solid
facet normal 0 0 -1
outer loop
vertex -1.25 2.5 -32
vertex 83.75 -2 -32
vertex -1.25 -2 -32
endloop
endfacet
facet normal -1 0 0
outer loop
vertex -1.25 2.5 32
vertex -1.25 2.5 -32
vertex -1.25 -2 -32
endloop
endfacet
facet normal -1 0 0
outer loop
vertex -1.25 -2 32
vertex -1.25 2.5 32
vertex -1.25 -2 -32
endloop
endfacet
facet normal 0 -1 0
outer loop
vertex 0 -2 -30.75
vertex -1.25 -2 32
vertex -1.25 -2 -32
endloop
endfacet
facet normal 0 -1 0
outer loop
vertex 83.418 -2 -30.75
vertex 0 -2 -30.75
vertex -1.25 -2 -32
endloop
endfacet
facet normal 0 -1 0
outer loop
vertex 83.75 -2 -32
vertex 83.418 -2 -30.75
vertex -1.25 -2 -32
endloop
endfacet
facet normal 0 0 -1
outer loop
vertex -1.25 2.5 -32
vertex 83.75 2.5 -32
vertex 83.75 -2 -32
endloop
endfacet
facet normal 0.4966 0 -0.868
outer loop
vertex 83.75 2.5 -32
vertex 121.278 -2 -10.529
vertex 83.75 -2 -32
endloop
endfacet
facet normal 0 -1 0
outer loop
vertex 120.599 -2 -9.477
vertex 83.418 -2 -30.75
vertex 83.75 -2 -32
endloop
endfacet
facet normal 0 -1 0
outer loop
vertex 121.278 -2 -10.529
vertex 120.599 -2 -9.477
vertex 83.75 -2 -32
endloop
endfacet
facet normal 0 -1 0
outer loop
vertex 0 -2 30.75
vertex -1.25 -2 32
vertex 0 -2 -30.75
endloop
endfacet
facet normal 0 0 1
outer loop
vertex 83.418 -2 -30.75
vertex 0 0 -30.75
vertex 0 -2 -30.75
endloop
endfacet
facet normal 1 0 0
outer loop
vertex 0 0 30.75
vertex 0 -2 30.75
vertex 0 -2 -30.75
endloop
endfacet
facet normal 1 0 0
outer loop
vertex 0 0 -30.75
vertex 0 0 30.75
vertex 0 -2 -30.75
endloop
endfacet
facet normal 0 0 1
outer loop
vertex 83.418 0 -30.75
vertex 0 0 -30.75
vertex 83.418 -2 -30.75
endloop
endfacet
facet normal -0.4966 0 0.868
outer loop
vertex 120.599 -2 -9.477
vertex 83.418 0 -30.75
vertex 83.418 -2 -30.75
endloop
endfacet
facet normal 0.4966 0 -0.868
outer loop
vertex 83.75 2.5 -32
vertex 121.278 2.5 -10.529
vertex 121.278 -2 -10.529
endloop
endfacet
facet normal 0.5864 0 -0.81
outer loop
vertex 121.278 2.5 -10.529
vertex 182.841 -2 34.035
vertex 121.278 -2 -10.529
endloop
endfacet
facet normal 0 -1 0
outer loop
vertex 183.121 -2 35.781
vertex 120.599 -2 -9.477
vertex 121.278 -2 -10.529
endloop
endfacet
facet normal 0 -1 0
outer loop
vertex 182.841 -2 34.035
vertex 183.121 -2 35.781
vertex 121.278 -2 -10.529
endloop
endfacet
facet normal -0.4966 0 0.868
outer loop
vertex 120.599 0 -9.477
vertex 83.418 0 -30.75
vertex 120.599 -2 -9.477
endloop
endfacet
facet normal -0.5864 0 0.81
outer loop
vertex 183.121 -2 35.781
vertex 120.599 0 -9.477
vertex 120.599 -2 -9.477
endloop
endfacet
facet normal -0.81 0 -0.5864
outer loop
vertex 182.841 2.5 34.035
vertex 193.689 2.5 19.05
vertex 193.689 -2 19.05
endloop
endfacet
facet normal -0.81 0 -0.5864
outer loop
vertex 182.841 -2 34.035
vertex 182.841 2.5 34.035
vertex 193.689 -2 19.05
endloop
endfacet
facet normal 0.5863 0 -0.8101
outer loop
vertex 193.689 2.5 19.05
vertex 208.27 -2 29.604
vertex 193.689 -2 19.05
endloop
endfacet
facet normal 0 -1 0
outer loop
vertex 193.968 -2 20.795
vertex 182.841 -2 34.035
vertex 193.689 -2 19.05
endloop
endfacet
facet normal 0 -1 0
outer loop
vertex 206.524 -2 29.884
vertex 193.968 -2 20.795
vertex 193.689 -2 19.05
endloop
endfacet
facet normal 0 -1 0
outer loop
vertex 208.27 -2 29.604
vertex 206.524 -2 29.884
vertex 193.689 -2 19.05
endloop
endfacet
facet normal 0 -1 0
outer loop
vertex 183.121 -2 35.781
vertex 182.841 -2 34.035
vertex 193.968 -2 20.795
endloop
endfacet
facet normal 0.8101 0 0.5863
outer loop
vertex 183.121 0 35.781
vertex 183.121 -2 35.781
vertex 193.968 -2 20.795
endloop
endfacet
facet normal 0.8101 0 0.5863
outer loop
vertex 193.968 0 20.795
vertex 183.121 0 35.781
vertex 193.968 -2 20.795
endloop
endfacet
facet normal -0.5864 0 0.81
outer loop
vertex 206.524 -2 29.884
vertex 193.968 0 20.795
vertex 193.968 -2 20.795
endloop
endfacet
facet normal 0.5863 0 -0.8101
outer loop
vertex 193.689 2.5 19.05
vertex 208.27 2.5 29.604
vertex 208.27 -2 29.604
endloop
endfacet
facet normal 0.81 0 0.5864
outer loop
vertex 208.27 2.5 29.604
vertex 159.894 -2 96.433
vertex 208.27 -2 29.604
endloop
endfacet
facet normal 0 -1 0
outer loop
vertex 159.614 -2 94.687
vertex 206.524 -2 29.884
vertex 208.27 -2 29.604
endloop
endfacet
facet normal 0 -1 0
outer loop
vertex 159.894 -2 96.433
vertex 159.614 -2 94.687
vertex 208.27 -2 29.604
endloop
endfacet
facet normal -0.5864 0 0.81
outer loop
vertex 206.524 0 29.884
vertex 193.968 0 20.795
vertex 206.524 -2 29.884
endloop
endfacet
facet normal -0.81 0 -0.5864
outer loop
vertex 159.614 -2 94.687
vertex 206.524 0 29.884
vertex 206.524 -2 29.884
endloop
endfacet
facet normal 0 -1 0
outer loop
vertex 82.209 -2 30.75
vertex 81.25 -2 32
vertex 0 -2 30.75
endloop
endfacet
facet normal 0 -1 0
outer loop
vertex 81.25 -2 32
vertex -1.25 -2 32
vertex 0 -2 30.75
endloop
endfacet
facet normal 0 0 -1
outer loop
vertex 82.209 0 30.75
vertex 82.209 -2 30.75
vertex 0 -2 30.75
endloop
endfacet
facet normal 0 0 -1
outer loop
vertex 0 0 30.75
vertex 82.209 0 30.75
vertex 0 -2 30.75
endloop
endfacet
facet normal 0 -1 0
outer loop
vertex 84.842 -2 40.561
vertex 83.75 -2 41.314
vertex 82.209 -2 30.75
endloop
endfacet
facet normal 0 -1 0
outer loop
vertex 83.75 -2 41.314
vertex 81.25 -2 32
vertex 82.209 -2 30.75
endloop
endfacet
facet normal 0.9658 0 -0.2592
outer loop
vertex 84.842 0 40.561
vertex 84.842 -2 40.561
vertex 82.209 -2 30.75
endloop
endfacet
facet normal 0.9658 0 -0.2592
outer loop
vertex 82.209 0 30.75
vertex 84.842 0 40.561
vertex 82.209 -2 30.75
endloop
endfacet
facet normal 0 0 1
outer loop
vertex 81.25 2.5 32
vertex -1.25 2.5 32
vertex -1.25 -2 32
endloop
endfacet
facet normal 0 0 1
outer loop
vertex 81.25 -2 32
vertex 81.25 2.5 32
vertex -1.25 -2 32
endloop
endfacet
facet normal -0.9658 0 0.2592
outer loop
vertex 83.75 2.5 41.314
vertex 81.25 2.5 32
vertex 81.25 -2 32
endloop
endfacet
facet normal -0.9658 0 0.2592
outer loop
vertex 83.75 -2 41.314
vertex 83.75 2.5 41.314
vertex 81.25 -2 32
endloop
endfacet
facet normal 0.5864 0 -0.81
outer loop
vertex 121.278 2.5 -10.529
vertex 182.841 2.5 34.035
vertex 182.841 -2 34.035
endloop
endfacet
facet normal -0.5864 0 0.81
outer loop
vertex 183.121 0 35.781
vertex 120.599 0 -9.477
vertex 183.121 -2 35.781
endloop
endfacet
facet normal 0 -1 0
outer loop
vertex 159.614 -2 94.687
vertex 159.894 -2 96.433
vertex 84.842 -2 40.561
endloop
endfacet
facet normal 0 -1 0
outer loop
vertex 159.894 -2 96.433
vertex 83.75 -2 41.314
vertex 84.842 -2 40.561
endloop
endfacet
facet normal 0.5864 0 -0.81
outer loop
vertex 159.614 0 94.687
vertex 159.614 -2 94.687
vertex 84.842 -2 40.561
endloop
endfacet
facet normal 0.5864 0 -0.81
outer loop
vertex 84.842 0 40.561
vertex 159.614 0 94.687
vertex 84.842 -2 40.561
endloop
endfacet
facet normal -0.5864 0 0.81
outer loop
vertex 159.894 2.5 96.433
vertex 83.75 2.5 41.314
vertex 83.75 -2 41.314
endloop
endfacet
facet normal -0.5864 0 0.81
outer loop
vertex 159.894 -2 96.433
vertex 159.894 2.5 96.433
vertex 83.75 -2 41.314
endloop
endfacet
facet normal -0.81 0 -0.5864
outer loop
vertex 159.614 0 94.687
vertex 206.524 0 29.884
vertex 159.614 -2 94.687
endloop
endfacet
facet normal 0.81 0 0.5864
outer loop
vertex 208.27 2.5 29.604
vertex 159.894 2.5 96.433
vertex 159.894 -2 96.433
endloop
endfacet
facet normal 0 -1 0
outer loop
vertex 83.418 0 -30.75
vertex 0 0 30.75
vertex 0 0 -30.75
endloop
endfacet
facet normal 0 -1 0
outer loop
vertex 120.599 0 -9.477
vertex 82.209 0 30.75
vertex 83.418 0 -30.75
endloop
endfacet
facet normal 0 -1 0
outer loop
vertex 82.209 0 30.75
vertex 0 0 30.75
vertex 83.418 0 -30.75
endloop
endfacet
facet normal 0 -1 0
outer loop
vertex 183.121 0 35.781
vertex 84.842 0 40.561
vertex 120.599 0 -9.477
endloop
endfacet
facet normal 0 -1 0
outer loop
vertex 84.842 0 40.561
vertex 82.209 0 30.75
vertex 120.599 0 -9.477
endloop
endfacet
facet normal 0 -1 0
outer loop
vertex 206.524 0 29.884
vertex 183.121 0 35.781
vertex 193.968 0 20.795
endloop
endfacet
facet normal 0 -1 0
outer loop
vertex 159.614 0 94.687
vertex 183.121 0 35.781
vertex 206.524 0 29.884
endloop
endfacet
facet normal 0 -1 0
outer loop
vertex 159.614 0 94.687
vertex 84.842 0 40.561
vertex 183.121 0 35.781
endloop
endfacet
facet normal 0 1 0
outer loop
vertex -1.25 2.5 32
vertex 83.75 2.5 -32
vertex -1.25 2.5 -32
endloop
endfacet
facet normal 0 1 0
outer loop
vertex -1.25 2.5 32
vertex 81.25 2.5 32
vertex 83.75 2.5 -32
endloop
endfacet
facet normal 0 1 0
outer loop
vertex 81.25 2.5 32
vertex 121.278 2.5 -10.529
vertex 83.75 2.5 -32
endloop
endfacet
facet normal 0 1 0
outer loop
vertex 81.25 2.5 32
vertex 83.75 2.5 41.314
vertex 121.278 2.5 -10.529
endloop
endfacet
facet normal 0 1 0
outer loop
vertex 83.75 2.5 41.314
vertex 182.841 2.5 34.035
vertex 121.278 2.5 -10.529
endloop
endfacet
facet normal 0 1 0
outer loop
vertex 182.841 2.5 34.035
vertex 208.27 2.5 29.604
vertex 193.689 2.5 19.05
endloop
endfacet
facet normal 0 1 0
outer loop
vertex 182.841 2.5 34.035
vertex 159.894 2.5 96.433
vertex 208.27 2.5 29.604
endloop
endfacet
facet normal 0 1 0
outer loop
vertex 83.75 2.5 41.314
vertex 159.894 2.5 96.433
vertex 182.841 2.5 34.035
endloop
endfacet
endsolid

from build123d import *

# Parameters (mm, degrees)
EXTRUDE_1_DEPTH = 2
EXTRUDE_2_DEPTH = 2.5


with BuildPart() as part:
    # 草图1 → 凸台-拉伸1 (new body)
    with BuildSketch(Plane(origin=(0, 0, 0), x_dir=(1, 0, 0), z_dir=(0, 1, 0))):
        Polygon((-1.25, 32), (-1.25, -32), (81.25, -32), (83.75, -41.313840204), (159.893914202, -96.432841737), (208.269633633, -29.6044064), (193.688884105, -19.049703979), (182.840995505, -34.035474327), (121.277830831, 10.528824785), (83.75, 32), align=None)
        Polygon((0, 30.75), (0, -30.75), (82.208724754, -30.75), (84.842274477, -40.561384515), (159.614327597, -94.687324241), (206.524116136, -29.883993005), (193.968470709, -20.795221475), (183.12058211, -35.780991824), (120.599033271, 9.477061724), (83.417685679, 30.75), align=None, mode=Mode.SUBTRACT)
    extrude(amount=-EXTRUDE_1_DEPTH)

    # 草图2 → 凸台-拉伸2 (add)
    with BuildSketch(Plane(origin=(0, 0, 0), x_dir=(1, 0, 0), z_dir=(0, 1, 0))):
        Polygon((-1.25, 32), (-1.25, -32), (81.25, -32), (83.75, -41.313840204), (159.893914202, -96.432841737), (208.269633633, -29.6044064), (193.688884105, -19.049703979), (182.840995505, -34.035474327), (121.277830831, 10.528824785), (83.75, 32), align=None)
    extrude(amount=EXTRUDE_2_DEPTH)


solid = part.part
